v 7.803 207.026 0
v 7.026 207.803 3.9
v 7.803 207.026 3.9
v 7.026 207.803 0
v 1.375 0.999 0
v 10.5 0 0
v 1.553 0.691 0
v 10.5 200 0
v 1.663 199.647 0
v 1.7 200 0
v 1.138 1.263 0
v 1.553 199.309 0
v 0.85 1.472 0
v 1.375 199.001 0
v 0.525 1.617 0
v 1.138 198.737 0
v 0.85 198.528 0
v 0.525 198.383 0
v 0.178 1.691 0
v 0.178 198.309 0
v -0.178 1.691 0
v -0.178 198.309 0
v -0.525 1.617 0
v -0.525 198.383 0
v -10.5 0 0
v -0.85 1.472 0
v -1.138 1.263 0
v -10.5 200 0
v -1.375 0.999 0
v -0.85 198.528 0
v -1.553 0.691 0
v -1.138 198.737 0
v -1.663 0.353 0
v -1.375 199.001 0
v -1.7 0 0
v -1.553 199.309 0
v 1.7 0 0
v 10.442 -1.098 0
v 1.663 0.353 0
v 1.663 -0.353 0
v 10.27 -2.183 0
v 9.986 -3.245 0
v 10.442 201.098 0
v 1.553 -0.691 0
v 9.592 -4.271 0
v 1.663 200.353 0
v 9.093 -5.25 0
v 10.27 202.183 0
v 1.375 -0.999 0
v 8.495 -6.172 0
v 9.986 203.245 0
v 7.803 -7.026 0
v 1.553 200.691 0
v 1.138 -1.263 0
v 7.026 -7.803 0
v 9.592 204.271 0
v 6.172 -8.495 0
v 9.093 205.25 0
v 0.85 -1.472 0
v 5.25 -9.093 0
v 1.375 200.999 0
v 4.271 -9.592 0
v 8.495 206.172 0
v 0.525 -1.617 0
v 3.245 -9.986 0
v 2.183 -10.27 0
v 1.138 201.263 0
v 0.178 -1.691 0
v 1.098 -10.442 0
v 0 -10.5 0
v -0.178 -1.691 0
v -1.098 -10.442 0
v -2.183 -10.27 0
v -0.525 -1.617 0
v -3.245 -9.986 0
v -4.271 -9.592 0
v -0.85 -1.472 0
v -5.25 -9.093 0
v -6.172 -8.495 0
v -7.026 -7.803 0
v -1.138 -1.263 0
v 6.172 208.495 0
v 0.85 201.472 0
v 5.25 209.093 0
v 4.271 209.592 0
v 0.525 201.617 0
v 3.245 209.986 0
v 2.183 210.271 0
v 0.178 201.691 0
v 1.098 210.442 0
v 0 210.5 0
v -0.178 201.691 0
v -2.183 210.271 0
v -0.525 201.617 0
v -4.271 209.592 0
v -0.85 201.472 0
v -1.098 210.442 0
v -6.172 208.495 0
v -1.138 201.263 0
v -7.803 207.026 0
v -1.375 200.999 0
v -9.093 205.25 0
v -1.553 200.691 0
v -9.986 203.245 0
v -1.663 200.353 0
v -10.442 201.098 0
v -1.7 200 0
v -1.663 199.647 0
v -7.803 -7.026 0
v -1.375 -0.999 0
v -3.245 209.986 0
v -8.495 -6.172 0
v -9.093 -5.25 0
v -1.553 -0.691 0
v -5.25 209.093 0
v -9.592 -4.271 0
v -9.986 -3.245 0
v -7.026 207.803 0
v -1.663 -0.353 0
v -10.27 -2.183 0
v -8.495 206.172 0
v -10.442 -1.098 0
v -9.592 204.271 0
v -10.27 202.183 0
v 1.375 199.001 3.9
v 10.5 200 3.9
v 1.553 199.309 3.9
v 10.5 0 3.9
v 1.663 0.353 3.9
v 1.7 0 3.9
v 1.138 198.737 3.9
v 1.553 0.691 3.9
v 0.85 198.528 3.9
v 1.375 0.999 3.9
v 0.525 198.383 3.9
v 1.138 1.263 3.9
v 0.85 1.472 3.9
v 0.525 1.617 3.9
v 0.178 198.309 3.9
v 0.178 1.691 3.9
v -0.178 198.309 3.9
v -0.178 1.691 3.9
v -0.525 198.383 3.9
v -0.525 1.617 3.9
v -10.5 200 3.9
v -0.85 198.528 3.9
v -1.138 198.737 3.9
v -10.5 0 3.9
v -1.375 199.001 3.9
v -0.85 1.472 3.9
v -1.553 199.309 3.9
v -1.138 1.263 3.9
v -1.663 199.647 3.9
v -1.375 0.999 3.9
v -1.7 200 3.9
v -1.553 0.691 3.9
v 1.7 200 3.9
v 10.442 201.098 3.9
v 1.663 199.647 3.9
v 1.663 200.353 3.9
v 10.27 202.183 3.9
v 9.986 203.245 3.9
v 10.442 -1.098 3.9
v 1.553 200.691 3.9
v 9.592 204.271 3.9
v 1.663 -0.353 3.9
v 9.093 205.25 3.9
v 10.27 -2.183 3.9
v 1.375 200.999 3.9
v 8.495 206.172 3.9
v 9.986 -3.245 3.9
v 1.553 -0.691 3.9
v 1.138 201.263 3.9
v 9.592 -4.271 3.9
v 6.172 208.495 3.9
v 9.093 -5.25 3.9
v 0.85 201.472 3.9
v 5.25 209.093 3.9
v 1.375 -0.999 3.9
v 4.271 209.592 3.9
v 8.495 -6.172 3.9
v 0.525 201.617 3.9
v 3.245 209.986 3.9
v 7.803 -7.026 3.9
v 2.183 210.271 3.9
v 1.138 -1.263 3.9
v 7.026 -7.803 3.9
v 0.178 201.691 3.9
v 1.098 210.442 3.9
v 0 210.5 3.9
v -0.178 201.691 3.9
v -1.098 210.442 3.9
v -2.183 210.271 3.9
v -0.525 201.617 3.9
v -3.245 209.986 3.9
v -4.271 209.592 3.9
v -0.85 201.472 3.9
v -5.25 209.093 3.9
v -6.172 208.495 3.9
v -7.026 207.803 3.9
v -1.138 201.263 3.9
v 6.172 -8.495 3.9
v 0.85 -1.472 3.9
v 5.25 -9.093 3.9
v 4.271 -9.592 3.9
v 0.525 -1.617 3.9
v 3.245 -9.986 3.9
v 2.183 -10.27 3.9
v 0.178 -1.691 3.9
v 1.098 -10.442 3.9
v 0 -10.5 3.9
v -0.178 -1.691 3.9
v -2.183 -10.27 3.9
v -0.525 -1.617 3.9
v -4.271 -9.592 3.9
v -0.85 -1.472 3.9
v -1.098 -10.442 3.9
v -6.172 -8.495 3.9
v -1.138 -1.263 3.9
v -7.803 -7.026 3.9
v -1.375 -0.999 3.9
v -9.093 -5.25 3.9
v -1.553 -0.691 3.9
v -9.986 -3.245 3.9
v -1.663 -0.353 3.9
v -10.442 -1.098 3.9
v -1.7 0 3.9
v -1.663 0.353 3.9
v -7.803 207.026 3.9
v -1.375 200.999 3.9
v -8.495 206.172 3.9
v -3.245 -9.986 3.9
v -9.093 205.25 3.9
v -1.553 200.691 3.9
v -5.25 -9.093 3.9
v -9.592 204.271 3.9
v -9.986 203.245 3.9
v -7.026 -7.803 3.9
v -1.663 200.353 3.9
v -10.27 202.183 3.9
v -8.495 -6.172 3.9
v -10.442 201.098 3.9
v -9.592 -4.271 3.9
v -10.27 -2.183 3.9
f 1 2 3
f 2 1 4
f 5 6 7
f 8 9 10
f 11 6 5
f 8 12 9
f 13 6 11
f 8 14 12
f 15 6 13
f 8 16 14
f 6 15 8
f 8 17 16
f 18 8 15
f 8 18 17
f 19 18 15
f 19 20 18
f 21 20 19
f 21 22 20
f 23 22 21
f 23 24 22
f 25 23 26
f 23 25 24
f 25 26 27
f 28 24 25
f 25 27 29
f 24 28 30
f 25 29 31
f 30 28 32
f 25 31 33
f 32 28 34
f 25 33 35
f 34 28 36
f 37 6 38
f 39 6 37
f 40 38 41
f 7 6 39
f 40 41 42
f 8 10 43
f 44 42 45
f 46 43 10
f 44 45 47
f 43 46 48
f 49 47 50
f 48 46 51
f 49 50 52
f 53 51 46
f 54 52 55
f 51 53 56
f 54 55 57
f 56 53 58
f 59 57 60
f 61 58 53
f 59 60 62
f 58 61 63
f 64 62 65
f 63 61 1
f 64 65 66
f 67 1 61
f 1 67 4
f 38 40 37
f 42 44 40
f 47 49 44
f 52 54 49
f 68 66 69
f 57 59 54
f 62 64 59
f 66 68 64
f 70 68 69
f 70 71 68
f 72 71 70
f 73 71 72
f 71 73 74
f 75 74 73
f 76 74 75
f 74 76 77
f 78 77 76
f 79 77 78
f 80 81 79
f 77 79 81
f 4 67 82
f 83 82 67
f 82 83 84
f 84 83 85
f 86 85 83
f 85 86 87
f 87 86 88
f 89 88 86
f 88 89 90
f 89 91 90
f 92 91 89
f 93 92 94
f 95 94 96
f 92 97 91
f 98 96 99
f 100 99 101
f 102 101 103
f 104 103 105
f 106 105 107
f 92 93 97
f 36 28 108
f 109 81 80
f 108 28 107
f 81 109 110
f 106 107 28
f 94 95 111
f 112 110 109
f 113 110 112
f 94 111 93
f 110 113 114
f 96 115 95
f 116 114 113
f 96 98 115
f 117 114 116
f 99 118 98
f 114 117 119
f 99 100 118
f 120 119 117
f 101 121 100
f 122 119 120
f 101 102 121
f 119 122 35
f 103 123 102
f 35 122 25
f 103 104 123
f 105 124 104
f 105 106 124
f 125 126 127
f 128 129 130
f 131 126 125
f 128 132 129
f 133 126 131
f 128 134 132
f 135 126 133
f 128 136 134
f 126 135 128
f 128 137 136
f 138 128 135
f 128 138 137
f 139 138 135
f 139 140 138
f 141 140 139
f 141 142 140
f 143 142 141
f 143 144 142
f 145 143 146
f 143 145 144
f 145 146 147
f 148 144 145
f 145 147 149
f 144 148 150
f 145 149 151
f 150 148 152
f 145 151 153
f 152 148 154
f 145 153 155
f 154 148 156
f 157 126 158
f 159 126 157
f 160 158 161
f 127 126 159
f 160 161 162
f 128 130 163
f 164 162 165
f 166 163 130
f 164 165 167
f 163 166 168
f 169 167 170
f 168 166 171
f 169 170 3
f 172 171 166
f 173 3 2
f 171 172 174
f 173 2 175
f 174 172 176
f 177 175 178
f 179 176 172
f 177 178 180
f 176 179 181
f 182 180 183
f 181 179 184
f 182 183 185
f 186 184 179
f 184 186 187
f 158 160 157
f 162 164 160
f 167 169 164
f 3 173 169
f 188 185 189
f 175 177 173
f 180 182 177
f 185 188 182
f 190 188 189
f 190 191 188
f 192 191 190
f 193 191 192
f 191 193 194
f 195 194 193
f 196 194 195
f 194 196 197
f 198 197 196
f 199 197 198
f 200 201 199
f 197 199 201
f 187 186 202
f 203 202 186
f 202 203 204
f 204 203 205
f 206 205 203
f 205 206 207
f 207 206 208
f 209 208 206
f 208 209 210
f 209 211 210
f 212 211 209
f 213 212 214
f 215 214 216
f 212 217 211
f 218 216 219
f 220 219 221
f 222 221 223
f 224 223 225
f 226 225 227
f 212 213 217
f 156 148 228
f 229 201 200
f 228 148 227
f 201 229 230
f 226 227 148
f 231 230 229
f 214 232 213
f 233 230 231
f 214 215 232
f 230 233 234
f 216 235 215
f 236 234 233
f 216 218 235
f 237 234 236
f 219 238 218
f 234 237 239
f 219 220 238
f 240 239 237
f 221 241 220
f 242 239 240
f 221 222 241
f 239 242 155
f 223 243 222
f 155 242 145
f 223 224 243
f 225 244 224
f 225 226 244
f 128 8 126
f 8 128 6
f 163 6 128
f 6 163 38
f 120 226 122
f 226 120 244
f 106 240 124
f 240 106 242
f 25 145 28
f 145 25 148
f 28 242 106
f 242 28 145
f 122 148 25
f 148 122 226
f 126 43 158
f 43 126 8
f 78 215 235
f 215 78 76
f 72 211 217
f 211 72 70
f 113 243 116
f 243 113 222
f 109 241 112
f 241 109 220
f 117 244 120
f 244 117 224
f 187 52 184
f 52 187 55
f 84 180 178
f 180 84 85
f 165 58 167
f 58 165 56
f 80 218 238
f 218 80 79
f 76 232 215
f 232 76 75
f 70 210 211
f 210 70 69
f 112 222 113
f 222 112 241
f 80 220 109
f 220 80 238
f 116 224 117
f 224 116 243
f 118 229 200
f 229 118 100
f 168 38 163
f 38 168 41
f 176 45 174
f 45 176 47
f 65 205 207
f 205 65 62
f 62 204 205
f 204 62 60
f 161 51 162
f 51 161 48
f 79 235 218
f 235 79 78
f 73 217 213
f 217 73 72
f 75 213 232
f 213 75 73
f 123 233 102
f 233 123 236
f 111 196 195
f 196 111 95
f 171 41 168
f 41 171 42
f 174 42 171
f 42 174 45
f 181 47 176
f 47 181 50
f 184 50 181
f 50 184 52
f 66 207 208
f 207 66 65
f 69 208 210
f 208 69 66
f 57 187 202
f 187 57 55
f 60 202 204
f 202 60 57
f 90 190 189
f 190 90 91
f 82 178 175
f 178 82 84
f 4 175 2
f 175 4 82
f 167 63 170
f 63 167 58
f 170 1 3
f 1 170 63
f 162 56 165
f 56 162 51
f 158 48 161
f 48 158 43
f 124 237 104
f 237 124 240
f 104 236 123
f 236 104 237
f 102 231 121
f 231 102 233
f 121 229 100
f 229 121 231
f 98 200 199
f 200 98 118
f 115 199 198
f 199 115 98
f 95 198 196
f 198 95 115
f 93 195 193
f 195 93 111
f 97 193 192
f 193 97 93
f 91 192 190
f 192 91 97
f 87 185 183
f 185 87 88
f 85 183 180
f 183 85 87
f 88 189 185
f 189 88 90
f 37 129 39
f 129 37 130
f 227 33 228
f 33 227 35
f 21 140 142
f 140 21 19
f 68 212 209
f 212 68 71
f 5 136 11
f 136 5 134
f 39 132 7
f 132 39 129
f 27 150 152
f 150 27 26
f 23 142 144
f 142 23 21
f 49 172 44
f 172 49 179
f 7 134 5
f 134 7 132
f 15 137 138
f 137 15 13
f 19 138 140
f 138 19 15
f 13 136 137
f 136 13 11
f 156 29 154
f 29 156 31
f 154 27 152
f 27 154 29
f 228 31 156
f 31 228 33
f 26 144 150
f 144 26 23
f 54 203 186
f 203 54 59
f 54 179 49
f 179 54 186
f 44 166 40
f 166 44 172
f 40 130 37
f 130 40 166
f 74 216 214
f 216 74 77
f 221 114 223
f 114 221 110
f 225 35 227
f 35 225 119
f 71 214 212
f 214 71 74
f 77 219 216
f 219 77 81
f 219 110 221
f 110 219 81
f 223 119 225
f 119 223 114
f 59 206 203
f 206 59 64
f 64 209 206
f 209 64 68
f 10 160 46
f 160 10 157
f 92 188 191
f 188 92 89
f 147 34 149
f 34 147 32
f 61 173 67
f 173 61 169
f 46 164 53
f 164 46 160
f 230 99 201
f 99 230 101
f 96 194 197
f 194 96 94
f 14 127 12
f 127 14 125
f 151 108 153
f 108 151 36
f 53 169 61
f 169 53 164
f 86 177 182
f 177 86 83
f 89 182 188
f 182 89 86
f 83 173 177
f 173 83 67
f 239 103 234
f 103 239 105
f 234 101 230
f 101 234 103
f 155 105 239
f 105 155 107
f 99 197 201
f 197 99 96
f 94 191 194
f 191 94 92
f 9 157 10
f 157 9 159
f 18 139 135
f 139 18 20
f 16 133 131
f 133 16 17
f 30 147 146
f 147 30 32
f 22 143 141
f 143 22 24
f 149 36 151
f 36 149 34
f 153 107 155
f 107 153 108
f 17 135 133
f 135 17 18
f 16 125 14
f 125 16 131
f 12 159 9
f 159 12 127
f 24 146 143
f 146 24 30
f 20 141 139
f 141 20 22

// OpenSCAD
//general
$fn = 30;                  //convexity of general curved faces
thickness = 3.9;             //thickness of arm

//circular servo horn measurements
hornDiameter = 21;             //diameter of the circular horn
hornCenterHole = 9;          //diameter of the center hole (for screw)
hornOuterHoleDiameters = 1.9;  //diameter of the outer holes for screwing down horn
hornOuterHolesCenterDist = 7.8;//distance from center to the outer holes

//arm specific stuff
armLength = 200;               //horn center to horn center distance for arm length

freeTurning3mm = 3.4;          //diameter of hole for free turning motion

module horn(){
   cylinder(d=hornCenterHole, h=thickness);
   translate([hornOuterHolesCenterDist, 0, 0])
   cylinder(d=hornOuterHoleDiameters, h=thickness);
   translate([-hornOuterHolesCenterDist, 0, 0])
   cylinder(d=hornOuterHoleDiameters, h=thickness);
}

difference(){
   hull(){
      cylinder(d=hornDiameter,h=thickness, $fn = 60);
      translate([0,armLength,0])
      cylinder(d=hornDiameter,h=thickness, $fn = 60);
   }
   cylinder(d=freeTurning3mm,h=thickness);
   translate([0,armLength,0])
   cylinder(d=freeTurning3mm,h=thickness);
}
